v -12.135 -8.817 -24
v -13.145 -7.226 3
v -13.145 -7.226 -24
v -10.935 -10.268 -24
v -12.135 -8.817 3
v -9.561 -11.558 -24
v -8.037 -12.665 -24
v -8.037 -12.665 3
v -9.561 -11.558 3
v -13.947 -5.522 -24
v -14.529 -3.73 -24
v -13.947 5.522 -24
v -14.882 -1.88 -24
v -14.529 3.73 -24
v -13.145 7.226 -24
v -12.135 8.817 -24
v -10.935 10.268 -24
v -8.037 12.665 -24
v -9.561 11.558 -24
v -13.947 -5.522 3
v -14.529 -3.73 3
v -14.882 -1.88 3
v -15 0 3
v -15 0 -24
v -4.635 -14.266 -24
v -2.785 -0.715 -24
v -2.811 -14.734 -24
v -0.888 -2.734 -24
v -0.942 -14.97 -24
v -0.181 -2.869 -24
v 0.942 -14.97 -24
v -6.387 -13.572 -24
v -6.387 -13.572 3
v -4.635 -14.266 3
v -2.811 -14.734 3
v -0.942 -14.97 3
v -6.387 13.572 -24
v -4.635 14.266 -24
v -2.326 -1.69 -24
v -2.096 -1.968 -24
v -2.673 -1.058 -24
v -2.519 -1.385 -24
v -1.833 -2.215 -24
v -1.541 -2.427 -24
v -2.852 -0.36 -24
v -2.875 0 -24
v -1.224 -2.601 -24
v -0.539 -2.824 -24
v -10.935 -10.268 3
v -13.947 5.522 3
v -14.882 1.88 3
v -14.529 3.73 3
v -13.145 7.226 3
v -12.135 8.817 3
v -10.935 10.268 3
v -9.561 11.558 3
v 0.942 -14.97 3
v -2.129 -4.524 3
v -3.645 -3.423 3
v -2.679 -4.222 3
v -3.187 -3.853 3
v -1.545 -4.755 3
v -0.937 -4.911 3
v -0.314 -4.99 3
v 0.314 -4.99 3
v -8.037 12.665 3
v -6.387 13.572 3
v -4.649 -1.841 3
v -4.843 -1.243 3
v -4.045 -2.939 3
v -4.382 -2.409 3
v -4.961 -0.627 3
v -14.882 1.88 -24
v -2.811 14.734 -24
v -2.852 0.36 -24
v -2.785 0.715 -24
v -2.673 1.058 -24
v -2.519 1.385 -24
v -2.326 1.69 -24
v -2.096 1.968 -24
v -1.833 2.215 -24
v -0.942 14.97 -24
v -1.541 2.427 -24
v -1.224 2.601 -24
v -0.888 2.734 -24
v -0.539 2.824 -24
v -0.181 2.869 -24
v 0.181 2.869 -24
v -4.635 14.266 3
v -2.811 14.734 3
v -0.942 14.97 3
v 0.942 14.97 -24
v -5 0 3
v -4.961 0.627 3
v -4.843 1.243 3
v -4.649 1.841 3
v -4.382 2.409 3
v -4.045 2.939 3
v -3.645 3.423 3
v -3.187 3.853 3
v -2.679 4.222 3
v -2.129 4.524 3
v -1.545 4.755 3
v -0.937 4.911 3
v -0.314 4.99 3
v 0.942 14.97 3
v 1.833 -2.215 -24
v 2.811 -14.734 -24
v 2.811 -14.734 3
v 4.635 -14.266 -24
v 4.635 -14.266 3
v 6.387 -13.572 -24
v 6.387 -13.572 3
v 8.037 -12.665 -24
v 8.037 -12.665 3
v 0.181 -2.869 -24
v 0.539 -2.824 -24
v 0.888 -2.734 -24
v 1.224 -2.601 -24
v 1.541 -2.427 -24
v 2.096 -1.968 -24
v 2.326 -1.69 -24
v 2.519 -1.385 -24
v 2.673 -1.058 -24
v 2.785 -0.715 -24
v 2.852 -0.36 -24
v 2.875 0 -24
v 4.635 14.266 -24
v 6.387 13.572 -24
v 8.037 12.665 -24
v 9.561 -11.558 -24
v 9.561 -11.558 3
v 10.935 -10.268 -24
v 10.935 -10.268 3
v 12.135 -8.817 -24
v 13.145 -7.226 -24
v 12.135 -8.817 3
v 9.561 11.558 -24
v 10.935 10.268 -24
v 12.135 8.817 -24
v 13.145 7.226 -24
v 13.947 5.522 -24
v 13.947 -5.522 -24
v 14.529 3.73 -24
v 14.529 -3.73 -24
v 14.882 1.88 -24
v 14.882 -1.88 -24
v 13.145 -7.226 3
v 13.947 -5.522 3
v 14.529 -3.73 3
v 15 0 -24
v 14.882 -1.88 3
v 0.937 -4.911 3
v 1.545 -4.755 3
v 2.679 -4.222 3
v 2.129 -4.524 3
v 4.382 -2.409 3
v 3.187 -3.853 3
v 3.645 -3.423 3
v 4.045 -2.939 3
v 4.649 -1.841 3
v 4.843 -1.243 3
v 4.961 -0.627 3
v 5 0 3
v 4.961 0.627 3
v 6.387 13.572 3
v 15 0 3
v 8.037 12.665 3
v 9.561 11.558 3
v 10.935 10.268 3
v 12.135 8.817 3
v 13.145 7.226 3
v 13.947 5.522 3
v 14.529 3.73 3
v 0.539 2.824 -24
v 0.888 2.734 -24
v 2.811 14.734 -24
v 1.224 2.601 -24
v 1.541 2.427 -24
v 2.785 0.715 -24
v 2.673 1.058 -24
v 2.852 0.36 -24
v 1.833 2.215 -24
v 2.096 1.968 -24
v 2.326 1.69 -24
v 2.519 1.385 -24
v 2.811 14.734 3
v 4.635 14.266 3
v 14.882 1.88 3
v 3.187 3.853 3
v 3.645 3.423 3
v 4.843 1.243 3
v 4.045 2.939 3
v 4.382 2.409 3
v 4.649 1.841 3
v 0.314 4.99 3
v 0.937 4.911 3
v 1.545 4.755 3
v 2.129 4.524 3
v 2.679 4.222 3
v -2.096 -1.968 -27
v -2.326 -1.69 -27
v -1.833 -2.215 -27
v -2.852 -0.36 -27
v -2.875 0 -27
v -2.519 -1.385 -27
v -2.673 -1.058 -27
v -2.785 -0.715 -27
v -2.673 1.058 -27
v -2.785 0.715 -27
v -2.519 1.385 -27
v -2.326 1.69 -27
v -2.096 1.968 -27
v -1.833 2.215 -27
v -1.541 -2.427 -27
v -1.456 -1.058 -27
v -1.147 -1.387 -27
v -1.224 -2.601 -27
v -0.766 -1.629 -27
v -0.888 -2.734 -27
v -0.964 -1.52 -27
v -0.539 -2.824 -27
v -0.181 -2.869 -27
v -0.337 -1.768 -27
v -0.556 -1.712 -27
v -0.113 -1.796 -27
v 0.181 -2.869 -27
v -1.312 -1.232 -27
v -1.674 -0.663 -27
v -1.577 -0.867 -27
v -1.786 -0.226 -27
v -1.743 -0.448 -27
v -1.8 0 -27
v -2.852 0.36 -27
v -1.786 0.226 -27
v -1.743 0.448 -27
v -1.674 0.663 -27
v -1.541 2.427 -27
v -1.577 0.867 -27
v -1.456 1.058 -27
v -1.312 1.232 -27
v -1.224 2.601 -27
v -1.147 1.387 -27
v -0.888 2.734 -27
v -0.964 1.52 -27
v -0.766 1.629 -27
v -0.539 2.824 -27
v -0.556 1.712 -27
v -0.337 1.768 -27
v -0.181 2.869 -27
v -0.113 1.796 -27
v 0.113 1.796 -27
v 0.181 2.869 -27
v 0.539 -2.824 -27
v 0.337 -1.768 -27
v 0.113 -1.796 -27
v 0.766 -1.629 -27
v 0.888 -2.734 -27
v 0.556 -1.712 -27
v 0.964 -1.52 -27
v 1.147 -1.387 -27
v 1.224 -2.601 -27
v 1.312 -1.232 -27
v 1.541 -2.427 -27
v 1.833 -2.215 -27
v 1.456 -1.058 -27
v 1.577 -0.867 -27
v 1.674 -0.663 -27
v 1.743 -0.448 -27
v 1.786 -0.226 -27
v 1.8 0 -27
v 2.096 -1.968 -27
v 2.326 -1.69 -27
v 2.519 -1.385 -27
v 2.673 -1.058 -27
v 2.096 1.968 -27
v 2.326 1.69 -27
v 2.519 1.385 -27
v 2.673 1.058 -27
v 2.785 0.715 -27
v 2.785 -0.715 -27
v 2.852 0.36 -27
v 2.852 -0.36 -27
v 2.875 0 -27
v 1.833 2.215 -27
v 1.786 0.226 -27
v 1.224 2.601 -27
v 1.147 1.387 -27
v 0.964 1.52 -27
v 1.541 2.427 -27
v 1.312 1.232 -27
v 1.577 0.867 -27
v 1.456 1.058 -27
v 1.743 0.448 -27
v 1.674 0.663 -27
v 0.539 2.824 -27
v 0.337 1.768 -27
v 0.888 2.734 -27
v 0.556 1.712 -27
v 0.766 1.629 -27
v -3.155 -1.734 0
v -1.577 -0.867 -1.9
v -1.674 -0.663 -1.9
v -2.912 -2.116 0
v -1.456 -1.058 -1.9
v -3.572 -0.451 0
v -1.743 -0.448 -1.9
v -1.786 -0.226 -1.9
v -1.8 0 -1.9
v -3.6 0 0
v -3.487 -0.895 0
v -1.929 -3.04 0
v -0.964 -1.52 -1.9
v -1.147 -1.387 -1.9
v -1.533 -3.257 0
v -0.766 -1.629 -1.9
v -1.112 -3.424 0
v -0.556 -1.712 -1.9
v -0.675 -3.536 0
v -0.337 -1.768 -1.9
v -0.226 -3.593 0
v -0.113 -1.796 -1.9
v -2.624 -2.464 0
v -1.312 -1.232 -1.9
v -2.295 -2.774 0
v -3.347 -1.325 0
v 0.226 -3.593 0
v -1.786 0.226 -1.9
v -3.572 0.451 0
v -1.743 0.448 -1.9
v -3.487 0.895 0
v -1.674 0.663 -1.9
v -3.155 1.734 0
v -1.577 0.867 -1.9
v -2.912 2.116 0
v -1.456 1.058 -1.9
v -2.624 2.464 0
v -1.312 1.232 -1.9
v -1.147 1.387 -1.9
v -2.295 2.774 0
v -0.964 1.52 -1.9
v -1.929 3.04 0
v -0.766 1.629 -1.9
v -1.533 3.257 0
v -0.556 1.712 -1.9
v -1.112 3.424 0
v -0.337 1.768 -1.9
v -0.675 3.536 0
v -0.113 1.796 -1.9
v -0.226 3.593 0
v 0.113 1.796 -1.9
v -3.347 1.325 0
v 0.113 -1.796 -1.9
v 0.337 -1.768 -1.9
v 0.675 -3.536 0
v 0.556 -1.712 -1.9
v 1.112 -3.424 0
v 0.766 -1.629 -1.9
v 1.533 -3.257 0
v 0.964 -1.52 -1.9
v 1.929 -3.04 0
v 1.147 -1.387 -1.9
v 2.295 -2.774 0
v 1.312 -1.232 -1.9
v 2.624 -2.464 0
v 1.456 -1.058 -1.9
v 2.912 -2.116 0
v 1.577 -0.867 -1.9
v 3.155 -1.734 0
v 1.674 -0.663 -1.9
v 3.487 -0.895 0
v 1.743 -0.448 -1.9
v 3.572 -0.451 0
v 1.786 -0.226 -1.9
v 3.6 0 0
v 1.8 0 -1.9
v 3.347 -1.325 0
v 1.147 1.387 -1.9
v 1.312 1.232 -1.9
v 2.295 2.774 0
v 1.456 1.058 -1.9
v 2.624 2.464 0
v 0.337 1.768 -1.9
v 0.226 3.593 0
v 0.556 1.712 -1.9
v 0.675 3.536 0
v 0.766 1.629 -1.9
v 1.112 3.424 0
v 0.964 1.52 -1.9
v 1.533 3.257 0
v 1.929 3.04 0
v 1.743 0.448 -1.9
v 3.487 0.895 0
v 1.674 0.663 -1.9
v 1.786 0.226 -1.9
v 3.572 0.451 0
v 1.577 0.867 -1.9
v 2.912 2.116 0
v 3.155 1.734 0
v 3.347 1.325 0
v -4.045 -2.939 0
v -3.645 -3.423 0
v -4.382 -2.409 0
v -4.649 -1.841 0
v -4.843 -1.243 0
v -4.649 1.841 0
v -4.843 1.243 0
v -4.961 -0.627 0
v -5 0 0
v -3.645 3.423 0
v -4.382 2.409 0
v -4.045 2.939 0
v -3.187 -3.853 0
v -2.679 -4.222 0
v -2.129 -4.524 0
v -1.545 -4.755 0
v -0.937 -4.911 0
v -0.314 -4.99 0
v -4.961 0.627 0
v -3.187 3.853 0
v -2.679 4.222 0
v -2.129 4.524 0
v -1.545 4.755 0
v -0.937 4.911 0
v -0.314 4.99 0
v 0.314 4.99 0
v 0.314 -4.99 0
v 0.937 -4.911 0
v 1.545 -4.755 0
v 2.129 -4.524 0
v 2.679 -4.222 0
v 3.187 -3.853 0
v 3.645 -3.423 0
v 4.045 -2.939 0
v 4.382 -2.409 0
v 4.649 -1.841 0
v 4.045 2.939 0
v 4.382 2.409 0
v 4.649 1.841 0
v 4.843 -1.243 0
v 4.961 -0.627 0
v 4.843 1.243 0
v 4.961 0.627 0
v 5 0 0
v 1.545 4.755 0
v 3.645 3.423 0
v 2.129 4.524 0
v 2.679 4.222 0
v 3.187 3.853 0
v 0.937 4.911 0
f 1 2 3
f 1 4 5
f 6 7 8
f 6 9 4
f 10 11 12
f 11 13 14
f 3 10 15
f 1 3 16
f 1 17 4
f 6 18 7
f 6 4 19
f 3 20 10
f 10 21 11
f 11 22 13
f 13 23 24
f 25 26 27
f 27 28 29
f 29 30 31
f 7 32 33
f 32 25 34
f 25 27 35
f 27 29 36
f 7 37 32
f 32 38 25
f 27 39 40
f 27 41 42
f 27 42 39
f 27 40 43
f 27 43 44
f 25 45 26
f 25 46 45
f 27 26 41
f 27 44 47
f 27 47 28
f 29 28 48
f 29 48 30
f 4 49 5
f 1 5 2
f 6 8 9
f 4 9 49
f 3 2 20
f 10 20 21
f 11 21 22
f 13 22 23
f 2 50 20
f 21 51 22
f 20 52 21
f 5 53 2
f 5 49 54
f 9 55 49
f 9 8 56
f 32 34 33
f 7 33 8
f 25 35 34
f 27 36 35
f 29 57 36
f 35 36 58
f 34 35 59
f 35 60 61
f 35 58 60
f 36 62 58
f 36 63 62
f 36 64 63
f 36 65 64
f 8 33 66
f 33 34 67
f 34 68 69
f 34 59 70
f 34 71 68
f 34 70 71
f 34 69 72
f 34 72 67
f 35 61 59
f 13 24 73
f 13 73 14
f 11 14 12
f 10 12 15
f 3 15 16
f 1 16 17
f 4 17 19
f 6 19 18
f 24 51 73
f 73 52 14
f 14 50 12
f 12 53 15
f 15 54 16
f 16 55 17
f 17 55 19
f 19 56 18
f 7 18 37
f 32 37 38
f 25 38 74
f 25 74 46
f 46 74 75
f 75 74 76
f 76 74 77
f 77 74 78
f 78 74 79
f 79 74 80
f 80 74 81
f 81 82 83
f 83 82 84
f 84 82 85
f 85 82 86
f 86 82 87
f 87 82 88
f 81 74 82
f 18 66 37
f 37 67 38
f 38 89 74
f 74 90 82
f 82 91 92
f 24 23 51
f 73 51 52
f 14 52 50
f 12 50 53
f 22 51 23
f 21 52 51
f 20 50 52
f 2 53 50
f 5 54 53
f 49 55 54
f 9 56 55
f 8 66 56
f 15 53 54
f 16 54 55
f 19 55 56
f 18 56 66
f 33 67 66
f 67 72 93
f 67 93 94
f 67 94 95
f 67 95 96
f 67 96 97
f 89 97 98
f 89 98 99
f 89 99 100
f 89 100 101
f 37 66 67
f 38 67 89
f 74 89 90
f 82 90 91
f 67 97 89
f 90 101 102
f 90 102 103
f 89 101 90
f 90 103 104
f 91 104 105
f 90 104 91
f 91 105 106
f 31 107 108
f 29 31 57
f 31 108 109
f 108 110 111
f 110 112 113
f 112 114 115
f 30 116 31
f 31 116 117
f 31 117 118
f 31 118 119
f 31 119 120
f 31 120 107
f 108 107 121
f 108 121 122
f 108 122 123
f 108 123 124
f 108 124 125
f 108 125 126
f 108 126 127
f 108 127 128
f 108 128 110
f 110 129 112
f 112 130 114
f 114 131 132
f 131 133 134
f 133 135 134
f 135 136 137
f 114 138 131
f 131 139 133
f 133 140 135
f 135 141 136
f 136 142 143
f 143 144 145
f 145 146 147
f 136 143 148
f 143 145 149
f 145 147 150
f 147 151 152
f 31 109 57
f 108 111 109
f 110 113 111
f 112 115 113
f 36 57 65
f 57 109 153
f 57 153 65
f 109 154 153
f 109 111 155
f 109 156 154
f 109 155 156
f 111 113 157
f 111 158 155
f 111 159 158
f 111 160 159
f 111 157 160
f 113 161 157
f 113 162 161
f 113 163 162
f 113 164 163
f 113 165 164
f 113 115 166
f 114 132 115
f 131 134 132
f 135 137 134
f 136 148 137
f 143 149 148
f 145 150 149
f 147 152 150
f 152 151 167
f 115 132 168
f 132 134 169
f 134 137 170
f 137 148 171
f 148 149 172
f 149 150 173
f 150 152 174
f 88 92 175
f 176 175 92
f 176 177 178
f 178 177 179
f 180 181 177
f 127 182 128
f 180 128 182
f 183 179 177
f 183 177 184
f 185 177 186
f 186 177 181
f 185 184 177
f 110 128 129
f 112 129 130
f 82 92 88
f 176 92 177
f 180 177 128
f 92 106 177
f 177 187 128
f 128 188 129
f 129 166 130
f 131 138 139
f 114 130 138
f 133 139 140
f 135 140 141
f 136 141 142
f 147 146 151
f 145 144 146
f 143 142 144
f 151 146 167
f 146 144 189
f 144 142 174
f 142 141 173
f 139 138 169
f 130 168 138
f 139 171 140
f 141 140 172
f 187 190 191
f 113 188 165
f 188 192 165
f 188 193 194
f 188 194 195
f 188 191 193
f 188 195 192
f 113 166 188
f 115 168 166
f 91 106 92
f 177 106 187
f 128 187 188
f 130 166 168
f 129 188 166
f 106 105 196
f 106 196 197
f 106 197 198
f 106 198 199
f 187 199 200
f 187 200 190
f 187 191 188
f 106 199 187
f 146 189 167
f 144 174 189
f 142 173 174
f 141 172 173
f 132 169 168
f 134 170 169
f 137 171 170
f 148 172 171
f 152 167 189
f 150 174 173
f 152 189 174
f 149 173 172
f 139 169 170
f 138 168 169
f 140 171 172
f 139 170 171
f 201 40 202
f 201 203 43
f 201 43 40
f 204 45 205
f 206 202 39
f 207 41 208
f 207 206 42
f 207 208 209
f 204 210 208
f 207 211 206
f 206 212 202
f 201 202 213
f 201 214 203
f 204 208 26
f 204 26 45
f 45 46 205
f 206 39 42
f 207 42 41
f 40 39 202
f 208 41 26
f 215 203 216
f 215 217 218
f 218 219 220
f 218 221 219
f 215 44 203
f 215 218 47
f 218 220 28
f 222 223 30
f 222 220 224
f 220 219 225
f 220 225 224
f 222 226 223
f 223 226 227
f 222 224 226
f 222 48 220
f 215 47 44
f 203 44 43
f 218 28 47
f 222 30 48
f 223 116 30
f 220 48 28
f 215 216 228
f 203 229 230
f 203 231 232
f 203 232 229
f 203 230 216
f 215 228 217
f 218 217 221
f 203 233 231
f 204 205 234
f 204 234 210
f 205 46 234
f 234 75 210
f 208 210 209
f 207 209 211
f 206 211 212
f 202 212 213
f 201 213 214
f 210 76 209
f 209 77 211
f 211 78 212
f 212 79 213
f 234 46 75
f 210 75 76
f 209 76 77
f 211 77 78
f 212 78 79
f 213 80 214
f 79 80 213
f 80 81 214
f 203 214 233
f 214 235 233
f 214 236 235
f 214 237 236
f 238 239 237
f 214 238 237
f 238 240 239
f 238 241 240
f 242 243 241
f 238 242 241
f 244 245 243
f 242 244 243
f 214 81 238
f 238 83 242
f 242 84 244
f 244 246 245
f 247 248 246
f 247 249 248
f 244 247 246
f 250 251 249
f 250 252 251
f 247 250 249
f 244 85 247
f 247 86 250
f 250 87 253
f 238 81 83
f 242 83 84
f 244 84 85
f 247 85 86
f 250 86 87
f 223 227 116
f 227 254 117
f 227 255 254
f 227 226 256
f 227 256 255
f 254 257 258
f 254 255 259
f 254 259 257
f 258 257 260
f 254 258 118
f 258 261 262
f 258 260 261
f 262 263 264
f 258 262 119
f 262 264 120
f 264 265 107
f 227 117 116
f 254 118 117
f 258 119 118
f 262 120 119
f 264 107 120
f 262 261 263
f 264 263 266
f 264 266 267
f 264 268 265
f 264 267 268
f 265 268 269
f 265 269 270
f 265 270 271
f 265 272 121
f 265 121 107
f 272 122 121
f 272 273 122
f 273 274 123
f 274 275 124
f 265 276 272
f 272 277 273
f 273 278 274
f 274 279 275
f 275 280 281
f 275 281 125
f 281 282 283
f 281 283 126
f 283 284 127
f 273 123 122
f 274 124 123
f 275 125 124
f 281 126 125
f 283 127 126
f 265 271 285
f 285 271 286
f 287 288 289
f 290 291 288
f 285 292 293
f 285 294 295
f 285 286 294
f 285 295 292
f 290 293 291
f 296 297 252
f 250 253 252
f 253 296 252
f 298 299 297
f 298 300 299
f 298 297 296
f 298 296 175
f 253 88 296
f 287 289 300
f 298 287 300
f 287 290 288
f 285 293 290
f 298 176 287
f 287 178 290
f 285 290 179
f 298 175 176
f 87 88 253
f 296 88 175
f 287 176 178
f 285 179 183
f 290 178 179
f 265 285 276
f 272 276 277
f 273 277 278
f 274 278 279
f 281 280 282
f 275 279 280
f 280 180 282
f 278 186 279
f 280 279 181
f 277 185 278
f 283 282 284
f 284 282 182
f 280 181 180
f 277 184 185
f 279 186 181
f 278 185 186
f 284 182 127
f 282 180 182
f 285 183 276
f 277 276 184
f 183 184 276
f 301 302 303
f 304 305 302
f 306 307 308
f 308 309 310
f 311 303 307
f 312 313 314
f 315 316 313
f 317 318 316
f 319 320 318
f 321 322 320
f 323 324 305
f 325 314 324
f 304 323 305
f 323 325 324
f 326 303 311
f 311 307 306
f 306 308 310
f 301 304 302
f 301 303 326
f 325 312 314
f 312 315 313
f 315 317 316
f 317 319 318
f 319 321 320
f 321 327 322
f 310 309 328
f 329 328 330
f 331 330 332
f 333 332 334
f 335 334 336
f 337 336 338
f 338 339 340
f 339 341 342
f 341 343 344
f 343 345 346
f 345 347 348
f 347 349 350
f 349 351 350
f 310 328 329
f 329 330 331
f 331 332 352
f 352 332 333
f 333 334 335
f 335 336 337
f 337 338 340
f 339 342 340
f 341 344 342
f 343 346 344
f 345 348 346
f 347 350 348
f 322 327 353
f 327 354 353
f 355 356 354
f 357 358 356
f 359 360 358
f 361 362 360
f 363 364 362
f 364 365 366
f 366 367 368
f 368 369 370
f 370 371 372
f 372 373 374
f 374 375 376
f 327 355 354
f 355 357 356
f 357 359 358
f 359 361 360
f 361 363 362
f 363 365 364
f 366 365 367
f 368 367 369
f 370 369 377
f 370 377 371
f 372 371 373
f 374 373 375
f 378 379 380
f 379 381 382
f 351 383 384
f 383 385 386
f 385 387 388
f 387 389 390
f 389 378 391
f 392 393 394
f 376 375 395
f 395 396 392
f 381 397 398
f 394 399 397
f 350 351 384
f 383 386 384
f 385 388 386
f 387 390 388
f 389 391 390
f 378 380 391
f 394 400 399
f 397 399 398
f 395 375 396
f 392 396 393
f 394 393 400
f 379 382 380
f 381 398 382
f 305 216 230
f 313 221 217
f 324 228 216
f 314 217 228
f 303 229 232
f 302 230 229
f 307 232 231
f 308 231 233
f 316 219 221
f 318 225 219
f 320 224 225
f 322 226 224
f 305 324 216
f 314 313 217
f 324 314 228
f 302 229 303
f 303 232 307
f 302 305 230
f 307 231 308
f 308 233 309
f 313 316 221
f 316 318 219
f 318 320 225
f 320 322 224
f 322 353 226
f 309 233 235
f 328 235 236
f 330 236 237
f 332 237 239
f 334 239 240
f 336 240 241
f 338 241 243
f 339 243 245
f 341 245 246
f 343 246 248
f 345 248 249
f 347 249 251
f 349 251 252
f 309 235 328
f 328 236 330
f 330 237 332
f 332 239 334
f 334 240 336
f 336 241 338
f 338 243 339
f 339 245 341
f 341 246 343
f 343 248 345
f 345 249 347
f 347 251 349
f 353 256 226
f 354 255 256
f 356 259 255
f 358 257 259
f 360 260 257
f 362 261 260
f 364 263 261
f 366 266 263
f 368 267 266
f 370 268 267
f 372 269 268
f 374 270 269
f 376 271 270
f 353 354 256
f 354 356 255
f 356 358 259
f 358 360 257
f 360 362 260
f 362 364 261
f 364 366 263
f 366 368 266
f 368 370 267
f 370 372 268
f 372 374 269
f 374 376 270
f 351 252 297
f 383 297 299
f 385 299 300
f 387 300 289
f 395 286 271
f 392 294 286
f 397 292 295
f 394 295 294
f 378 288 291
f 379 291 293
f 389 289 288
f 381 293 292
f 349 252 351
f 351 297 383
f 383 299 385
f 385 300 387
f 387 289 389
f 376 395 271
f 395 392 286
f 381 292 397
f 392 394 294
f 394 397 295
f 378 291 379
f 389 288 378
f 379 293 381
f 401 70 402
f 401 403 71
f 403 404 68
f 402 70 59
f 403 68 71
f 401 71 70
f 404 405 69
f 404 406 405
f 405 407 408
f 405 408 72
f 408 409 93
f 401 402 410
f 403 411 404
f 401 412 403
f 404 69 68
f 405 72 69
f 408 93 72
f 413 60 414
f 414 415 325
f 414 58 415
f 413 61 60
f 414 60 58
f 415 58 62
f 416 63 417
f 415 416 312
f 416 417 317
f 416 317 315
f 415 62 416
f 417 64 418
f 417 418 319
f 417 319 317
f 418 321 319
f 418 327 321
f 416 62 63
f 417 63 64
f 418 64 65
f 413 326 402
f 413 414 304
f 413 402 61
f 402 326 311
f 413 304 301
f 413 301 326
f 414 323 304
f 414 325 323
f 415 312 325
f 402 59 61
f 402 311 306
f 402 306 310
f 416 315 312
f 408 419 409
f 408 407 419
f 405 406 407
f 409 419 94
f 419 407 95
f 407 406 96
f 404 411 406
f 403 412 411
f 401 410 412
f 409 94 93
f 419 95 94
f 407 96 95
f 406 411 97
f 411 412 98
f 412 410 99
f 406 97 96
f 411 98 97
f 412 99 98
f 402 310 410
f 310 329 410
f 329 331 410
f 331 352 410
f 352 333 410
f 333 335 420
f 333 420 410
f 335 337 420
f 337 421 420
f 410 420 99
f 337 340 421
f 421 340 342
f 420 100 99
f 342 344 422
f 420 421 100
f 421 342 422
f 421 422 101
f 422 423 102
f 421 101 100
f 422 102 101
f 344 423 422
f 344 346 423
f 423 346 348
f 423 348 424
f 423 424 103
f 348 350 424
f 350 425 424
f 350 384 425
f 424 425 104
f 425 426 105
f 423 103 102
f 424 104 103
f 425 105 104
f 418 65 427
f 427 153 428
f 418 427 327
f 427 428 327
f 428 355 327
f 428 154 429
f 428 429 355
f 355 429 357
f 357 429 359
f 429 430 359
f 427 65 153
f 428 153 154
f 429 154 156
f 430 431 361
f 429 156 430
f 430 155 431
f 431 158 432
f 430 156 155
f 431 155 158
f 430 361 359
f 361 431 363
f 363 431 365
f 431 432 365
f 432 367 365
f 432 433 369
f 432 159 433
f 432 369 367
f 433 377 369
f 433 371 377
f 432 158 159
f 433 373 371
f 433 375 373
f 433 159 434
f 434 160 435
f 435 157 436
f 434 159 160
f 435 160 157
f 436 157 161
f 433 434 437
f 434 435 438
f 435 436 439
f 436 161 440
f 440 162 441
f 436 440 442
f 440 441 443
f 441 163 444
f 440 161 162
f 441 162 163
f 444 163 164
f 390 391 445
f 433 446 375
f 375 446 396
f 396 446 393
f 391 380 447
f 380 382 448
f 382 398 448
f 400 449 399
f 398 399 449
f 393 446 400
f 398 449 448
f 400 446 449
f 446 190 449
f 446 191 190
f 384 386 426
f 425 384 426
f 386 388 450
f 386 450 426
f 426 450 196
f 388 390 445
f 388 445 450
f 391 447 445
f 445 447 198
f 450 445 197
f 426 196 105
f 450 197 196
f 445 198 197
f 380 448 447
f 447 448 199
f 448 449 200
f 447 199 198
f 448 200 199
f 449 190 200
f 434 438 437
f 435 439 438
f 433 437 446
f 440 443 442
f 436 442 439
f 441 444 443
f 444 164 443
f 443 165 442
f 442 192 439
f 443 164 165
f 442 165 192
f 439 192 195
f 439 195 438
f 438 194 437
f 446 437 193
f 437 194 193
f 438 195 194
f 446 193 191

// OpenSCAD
$fn = 50;

difference() {
	union() {
		translate(v = [0, 0, -24.0]) {
			cylinder(h = 27, r = 15.0);
		}
		#translate(v = [0, 0, -27.0]) {
			cylinder(h = 27, r = 2.875);
		}
	}
	union() {
		translate(v = [0, 0, 0]) {
			rotate(a = [0, 0, 0]) {
				difference() {
					union() {
						translate(v = [0, 0, -27.0]) {
							cylinder(h = 27, r = 1.5);
						}
						translate(v = [0, 0, -1.9]) {
							cylinder(h = 1.9, r1 = 1.8, r2 = 3.6);
						}
						translate(v = [0, 0, -27.0]) {
							cylinder(h = 27, r = 1.8);
						}
						translate(v = [0, 0, -27.0]) {
							cylinder(h = 27, r = 1.5);
						}
					}
					union();
				}
			}
		}
		#cylinder(h = 3, r = 5.0);
	}
}
